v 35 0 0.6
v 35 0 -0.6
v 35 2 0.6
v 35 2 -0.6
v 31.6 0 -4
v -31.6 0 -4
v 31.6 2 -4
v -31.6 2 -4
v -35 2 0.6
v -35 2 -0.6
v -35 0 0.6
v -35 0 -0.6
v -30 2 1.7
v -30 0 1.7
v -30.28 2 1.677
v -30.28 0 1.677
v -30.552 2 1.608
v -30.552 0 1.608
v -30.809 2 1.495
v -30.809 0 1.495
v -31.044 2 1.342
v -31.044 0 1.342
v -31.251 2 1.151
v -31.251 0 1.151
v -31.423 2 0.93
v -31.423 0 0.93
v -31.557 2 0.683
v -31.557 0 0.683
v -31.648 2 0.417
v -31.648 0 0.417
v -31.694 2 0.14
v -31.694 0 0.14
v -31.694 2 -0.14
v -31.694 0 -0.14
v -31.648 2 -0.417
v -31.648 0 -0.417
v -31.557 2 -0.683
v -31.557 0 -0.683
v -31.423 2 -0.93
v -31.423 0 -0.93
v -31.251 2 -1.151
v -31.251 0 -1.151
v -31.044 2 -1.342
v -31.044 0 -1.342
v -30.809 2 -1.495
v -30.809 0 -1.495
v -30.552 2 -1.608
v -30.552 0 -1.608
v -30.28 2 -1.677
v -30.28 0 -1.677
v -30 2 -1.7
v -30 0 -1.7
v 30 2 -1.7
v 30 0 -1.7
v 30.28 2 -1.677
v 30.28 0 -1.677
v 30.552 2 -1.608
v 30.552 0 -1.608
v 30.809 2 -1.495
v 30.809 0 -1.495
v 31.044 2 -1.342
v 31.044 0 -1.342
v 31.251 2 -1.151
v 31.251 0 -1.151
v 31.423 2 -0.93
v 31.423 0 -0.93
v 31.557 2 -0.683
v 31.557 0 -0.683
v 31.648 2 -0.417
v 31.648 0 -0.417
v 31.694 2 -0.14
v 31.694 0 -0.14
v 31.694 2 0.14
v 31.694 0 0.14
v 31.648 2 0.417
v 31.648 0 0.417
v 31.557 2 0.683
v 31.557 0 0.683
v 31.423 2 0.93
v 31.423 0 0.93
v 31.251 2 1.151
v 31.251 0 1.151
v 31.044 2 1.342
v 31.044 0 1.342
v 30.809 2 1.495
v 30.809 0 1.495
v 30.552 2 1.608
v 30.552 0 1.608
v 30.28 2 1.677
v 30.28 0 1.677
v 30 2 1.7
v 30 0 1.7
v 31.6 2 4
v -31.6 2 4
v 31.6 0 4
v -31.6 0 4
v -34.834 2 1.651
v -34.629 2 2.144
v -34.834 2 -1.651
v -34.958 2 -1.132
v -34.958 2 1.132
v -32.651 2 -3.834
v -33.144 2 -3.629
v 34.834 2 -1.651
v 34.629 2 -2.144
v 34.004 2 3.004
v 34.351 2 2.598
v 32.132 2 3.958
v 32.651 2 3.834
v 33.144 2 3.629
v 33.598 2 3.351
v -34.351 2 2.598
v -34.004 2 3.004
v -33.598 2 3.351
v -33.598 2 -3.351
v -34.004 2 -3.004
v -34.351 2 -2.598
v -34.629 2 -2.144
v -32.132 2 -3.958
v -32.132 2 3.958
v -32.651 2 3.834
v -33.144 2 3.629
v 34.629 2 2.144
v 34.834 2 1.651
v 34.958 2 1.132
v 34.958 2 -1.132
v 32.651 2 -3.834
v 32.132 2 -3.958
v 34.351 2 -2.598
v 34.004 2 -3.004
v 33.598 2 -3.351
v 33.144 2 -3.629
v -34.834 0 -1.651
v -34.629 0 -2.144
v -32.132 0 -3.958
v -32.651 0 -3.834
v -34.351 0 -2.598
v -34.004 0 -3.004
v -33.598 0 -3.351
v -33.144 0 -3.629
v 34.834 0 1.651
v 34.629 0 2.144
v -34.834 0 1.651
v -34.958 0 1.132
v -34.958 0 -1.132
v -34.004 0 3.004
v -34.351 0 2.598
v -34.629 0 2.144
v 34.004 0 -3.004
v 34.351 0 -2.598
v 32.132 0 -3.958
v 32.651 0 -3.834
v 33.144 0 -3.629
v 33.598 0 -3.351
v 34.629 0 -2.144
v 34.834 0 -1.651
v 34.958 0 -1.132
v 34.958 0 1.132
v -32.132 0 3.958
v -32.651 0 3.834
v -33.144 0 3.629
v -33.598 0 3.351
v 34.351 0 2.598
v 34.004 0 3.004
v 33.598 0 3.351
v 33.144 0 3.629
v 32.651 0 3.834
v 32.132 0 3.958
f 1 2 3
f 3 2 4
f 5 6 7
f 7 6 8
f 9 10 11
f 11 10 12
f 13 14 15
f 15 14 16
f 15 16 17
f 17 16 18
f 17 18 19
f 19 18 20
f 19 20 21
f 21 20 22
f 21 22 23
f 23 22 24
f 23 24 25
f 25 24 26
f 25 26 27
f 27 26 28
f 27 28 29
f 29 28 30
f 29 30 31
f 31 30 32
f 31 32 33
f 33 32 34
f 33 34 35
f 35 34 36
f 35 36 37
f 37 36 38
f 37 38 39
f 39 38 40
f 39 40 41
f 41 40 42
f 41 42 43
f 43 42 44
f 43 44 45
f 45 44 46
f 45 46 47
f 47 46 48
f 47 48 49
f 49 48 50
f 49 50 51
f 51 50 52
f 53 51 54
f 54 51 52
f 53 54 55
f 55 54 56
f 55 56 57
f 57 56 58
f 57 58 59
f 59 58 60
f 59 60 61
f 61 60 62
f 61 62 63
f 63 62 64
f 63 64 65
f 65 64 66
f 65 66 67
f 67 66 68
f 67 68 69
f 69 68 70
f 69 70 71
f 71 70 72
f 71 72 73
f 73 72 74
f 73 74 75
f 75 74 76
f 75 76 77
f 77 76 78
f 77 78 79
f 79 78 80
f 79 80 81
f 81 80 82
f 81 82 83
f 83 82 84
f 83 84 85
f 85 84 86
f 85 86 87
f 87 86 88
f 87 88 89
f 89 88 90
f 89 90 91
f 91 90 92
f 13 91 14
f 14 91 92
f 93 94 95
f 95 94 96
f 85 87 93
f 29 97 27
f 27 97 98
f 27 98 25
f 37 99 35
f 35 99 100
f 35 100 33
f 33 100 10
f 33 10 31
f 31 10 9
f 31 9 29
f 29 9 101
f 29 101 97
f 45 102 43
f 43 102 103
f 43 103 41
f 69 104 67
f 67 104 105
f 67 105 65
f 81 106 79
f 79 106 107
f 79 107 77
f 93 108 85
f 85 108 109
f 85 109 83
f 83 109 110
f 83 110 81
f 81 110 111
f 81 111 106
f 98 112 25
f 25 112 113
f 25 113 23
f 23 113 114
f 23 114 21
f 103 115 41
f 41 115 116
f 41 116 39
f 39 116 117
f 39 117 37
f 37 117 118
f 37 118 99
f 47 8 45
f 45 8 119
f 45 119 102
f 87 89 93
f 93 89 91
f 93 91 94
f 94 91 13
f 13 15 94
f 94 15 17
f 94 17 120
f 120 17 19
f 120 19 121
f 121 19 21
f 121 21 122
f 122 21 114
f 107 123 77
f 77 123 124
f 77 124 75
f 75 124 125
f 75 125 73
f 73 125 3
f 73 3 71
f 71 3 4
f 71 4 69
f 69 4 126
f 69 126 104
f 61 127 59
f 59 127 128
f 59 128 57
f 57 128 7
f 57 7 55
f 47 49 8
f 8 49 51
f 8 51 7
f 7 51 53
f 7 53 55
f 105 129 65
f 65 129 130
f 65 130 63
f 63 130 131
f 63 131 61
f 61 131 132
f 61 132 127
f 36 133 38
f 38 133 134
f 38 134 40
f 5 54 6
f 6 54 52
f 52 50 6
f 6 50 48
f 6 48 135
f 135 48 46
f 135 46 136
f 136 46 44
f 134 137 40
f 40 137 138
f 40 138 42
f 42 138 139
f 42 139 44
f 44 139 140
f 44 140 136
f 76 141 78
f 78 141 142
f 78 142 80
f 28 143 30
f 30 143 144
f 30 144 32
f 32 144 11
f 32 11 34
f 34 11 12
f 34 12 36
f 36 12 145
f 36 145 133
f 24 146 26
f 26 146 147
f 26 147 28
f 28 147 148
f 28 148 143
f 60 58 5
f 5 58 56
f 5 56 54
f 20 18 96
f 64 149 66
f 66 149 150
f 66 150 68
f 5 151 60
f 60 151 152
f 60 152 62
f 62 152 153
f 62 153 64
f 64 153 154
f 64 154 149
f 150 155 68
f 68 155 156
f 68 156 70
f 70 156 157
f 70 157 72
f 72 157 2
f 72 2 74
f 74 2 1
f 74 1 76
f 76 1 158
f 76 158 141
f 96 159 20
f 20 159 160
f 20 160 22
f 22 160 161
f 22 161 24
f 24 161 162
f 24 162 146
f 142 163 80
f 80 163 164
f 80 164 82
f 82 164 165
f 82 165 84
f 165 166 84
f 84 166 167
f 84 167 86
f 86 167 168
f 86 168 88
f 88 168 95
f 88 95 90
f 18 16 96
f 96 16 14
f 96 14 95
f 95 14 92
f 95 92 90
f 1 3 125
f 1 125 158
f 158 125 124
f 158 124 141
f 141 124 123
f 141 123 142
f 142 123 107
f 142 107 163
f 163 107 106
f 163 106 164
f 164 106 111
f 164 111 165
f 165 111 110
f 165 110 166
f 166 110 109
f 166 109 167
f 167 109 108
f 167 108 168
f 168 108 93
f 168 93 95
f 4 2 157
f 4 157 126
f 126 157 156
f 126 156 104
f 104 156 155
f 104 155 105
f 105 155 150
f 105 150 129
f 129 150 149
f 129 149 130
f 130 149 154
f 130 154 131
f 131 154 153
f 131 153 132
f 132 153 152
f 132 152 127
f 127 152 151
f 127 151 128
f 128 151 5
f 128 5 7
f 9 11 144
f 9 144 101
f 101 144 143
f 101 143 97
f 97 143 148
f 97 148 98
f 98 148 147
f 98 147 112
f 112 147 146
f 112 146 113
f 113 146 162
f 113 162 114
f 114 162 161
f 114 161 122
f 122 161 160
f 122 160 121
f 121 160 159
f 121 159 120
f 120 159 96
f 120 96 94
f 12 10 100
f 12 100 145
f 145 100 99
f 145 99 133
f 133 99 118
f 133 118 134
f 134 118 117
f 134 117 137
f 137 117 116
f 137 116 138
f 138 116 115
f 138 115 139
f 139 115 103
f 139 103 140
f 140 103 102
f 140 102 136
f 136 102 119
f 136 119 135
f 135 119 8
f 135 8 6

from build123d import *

# Parameters (mm, degrees)
SKETCH_1_W      = 70
SKETCH_1_H      = 8
EXTRUDE_1_DEPTH = 2
FILLET_1_R      = 3.4


with BuildPart() as part:
    # 草图1 → 凸台-拉伸1 (new body)
    with BuildSketch(Plane(origin=(0, 0, 0), x_dir=(1, 0, 0), z_dir=(0, 1, 0))):
        Rectangle(SKETCH_1_W, SKETCH_1_H)
        with BuildLine():
            ThreePointArc((-30, -1.7), (-31.7, 0), (-30, 1.7))
            Line((-30, 1.7), (30, 1.7))
            ThreePointArc((30, 1.7), (31.202081528, 1.202081528), (31.7, 0))
            ThreePointArc((31.7, 0), (31.202081528, -1.202081528), (30, -1.7))
            Line((30, -1.7), (-30, -1.7))
        make_face(mode=Mode.SUBTRACT)
    extrude(amount=EXTRUDE_1_DEPTH)

    # 圆角1
    fillet_1_edges = [part.edges().sort_by_distance(p)[0] for p in [
        (35, 1, 4),
        (-35, 1, 4),
        (-35, 1, -4),
        (35, 1, -4),
    ]]
    fillet(fillet_1_edges, radius=FILLET_1_R)


solid = part.part
